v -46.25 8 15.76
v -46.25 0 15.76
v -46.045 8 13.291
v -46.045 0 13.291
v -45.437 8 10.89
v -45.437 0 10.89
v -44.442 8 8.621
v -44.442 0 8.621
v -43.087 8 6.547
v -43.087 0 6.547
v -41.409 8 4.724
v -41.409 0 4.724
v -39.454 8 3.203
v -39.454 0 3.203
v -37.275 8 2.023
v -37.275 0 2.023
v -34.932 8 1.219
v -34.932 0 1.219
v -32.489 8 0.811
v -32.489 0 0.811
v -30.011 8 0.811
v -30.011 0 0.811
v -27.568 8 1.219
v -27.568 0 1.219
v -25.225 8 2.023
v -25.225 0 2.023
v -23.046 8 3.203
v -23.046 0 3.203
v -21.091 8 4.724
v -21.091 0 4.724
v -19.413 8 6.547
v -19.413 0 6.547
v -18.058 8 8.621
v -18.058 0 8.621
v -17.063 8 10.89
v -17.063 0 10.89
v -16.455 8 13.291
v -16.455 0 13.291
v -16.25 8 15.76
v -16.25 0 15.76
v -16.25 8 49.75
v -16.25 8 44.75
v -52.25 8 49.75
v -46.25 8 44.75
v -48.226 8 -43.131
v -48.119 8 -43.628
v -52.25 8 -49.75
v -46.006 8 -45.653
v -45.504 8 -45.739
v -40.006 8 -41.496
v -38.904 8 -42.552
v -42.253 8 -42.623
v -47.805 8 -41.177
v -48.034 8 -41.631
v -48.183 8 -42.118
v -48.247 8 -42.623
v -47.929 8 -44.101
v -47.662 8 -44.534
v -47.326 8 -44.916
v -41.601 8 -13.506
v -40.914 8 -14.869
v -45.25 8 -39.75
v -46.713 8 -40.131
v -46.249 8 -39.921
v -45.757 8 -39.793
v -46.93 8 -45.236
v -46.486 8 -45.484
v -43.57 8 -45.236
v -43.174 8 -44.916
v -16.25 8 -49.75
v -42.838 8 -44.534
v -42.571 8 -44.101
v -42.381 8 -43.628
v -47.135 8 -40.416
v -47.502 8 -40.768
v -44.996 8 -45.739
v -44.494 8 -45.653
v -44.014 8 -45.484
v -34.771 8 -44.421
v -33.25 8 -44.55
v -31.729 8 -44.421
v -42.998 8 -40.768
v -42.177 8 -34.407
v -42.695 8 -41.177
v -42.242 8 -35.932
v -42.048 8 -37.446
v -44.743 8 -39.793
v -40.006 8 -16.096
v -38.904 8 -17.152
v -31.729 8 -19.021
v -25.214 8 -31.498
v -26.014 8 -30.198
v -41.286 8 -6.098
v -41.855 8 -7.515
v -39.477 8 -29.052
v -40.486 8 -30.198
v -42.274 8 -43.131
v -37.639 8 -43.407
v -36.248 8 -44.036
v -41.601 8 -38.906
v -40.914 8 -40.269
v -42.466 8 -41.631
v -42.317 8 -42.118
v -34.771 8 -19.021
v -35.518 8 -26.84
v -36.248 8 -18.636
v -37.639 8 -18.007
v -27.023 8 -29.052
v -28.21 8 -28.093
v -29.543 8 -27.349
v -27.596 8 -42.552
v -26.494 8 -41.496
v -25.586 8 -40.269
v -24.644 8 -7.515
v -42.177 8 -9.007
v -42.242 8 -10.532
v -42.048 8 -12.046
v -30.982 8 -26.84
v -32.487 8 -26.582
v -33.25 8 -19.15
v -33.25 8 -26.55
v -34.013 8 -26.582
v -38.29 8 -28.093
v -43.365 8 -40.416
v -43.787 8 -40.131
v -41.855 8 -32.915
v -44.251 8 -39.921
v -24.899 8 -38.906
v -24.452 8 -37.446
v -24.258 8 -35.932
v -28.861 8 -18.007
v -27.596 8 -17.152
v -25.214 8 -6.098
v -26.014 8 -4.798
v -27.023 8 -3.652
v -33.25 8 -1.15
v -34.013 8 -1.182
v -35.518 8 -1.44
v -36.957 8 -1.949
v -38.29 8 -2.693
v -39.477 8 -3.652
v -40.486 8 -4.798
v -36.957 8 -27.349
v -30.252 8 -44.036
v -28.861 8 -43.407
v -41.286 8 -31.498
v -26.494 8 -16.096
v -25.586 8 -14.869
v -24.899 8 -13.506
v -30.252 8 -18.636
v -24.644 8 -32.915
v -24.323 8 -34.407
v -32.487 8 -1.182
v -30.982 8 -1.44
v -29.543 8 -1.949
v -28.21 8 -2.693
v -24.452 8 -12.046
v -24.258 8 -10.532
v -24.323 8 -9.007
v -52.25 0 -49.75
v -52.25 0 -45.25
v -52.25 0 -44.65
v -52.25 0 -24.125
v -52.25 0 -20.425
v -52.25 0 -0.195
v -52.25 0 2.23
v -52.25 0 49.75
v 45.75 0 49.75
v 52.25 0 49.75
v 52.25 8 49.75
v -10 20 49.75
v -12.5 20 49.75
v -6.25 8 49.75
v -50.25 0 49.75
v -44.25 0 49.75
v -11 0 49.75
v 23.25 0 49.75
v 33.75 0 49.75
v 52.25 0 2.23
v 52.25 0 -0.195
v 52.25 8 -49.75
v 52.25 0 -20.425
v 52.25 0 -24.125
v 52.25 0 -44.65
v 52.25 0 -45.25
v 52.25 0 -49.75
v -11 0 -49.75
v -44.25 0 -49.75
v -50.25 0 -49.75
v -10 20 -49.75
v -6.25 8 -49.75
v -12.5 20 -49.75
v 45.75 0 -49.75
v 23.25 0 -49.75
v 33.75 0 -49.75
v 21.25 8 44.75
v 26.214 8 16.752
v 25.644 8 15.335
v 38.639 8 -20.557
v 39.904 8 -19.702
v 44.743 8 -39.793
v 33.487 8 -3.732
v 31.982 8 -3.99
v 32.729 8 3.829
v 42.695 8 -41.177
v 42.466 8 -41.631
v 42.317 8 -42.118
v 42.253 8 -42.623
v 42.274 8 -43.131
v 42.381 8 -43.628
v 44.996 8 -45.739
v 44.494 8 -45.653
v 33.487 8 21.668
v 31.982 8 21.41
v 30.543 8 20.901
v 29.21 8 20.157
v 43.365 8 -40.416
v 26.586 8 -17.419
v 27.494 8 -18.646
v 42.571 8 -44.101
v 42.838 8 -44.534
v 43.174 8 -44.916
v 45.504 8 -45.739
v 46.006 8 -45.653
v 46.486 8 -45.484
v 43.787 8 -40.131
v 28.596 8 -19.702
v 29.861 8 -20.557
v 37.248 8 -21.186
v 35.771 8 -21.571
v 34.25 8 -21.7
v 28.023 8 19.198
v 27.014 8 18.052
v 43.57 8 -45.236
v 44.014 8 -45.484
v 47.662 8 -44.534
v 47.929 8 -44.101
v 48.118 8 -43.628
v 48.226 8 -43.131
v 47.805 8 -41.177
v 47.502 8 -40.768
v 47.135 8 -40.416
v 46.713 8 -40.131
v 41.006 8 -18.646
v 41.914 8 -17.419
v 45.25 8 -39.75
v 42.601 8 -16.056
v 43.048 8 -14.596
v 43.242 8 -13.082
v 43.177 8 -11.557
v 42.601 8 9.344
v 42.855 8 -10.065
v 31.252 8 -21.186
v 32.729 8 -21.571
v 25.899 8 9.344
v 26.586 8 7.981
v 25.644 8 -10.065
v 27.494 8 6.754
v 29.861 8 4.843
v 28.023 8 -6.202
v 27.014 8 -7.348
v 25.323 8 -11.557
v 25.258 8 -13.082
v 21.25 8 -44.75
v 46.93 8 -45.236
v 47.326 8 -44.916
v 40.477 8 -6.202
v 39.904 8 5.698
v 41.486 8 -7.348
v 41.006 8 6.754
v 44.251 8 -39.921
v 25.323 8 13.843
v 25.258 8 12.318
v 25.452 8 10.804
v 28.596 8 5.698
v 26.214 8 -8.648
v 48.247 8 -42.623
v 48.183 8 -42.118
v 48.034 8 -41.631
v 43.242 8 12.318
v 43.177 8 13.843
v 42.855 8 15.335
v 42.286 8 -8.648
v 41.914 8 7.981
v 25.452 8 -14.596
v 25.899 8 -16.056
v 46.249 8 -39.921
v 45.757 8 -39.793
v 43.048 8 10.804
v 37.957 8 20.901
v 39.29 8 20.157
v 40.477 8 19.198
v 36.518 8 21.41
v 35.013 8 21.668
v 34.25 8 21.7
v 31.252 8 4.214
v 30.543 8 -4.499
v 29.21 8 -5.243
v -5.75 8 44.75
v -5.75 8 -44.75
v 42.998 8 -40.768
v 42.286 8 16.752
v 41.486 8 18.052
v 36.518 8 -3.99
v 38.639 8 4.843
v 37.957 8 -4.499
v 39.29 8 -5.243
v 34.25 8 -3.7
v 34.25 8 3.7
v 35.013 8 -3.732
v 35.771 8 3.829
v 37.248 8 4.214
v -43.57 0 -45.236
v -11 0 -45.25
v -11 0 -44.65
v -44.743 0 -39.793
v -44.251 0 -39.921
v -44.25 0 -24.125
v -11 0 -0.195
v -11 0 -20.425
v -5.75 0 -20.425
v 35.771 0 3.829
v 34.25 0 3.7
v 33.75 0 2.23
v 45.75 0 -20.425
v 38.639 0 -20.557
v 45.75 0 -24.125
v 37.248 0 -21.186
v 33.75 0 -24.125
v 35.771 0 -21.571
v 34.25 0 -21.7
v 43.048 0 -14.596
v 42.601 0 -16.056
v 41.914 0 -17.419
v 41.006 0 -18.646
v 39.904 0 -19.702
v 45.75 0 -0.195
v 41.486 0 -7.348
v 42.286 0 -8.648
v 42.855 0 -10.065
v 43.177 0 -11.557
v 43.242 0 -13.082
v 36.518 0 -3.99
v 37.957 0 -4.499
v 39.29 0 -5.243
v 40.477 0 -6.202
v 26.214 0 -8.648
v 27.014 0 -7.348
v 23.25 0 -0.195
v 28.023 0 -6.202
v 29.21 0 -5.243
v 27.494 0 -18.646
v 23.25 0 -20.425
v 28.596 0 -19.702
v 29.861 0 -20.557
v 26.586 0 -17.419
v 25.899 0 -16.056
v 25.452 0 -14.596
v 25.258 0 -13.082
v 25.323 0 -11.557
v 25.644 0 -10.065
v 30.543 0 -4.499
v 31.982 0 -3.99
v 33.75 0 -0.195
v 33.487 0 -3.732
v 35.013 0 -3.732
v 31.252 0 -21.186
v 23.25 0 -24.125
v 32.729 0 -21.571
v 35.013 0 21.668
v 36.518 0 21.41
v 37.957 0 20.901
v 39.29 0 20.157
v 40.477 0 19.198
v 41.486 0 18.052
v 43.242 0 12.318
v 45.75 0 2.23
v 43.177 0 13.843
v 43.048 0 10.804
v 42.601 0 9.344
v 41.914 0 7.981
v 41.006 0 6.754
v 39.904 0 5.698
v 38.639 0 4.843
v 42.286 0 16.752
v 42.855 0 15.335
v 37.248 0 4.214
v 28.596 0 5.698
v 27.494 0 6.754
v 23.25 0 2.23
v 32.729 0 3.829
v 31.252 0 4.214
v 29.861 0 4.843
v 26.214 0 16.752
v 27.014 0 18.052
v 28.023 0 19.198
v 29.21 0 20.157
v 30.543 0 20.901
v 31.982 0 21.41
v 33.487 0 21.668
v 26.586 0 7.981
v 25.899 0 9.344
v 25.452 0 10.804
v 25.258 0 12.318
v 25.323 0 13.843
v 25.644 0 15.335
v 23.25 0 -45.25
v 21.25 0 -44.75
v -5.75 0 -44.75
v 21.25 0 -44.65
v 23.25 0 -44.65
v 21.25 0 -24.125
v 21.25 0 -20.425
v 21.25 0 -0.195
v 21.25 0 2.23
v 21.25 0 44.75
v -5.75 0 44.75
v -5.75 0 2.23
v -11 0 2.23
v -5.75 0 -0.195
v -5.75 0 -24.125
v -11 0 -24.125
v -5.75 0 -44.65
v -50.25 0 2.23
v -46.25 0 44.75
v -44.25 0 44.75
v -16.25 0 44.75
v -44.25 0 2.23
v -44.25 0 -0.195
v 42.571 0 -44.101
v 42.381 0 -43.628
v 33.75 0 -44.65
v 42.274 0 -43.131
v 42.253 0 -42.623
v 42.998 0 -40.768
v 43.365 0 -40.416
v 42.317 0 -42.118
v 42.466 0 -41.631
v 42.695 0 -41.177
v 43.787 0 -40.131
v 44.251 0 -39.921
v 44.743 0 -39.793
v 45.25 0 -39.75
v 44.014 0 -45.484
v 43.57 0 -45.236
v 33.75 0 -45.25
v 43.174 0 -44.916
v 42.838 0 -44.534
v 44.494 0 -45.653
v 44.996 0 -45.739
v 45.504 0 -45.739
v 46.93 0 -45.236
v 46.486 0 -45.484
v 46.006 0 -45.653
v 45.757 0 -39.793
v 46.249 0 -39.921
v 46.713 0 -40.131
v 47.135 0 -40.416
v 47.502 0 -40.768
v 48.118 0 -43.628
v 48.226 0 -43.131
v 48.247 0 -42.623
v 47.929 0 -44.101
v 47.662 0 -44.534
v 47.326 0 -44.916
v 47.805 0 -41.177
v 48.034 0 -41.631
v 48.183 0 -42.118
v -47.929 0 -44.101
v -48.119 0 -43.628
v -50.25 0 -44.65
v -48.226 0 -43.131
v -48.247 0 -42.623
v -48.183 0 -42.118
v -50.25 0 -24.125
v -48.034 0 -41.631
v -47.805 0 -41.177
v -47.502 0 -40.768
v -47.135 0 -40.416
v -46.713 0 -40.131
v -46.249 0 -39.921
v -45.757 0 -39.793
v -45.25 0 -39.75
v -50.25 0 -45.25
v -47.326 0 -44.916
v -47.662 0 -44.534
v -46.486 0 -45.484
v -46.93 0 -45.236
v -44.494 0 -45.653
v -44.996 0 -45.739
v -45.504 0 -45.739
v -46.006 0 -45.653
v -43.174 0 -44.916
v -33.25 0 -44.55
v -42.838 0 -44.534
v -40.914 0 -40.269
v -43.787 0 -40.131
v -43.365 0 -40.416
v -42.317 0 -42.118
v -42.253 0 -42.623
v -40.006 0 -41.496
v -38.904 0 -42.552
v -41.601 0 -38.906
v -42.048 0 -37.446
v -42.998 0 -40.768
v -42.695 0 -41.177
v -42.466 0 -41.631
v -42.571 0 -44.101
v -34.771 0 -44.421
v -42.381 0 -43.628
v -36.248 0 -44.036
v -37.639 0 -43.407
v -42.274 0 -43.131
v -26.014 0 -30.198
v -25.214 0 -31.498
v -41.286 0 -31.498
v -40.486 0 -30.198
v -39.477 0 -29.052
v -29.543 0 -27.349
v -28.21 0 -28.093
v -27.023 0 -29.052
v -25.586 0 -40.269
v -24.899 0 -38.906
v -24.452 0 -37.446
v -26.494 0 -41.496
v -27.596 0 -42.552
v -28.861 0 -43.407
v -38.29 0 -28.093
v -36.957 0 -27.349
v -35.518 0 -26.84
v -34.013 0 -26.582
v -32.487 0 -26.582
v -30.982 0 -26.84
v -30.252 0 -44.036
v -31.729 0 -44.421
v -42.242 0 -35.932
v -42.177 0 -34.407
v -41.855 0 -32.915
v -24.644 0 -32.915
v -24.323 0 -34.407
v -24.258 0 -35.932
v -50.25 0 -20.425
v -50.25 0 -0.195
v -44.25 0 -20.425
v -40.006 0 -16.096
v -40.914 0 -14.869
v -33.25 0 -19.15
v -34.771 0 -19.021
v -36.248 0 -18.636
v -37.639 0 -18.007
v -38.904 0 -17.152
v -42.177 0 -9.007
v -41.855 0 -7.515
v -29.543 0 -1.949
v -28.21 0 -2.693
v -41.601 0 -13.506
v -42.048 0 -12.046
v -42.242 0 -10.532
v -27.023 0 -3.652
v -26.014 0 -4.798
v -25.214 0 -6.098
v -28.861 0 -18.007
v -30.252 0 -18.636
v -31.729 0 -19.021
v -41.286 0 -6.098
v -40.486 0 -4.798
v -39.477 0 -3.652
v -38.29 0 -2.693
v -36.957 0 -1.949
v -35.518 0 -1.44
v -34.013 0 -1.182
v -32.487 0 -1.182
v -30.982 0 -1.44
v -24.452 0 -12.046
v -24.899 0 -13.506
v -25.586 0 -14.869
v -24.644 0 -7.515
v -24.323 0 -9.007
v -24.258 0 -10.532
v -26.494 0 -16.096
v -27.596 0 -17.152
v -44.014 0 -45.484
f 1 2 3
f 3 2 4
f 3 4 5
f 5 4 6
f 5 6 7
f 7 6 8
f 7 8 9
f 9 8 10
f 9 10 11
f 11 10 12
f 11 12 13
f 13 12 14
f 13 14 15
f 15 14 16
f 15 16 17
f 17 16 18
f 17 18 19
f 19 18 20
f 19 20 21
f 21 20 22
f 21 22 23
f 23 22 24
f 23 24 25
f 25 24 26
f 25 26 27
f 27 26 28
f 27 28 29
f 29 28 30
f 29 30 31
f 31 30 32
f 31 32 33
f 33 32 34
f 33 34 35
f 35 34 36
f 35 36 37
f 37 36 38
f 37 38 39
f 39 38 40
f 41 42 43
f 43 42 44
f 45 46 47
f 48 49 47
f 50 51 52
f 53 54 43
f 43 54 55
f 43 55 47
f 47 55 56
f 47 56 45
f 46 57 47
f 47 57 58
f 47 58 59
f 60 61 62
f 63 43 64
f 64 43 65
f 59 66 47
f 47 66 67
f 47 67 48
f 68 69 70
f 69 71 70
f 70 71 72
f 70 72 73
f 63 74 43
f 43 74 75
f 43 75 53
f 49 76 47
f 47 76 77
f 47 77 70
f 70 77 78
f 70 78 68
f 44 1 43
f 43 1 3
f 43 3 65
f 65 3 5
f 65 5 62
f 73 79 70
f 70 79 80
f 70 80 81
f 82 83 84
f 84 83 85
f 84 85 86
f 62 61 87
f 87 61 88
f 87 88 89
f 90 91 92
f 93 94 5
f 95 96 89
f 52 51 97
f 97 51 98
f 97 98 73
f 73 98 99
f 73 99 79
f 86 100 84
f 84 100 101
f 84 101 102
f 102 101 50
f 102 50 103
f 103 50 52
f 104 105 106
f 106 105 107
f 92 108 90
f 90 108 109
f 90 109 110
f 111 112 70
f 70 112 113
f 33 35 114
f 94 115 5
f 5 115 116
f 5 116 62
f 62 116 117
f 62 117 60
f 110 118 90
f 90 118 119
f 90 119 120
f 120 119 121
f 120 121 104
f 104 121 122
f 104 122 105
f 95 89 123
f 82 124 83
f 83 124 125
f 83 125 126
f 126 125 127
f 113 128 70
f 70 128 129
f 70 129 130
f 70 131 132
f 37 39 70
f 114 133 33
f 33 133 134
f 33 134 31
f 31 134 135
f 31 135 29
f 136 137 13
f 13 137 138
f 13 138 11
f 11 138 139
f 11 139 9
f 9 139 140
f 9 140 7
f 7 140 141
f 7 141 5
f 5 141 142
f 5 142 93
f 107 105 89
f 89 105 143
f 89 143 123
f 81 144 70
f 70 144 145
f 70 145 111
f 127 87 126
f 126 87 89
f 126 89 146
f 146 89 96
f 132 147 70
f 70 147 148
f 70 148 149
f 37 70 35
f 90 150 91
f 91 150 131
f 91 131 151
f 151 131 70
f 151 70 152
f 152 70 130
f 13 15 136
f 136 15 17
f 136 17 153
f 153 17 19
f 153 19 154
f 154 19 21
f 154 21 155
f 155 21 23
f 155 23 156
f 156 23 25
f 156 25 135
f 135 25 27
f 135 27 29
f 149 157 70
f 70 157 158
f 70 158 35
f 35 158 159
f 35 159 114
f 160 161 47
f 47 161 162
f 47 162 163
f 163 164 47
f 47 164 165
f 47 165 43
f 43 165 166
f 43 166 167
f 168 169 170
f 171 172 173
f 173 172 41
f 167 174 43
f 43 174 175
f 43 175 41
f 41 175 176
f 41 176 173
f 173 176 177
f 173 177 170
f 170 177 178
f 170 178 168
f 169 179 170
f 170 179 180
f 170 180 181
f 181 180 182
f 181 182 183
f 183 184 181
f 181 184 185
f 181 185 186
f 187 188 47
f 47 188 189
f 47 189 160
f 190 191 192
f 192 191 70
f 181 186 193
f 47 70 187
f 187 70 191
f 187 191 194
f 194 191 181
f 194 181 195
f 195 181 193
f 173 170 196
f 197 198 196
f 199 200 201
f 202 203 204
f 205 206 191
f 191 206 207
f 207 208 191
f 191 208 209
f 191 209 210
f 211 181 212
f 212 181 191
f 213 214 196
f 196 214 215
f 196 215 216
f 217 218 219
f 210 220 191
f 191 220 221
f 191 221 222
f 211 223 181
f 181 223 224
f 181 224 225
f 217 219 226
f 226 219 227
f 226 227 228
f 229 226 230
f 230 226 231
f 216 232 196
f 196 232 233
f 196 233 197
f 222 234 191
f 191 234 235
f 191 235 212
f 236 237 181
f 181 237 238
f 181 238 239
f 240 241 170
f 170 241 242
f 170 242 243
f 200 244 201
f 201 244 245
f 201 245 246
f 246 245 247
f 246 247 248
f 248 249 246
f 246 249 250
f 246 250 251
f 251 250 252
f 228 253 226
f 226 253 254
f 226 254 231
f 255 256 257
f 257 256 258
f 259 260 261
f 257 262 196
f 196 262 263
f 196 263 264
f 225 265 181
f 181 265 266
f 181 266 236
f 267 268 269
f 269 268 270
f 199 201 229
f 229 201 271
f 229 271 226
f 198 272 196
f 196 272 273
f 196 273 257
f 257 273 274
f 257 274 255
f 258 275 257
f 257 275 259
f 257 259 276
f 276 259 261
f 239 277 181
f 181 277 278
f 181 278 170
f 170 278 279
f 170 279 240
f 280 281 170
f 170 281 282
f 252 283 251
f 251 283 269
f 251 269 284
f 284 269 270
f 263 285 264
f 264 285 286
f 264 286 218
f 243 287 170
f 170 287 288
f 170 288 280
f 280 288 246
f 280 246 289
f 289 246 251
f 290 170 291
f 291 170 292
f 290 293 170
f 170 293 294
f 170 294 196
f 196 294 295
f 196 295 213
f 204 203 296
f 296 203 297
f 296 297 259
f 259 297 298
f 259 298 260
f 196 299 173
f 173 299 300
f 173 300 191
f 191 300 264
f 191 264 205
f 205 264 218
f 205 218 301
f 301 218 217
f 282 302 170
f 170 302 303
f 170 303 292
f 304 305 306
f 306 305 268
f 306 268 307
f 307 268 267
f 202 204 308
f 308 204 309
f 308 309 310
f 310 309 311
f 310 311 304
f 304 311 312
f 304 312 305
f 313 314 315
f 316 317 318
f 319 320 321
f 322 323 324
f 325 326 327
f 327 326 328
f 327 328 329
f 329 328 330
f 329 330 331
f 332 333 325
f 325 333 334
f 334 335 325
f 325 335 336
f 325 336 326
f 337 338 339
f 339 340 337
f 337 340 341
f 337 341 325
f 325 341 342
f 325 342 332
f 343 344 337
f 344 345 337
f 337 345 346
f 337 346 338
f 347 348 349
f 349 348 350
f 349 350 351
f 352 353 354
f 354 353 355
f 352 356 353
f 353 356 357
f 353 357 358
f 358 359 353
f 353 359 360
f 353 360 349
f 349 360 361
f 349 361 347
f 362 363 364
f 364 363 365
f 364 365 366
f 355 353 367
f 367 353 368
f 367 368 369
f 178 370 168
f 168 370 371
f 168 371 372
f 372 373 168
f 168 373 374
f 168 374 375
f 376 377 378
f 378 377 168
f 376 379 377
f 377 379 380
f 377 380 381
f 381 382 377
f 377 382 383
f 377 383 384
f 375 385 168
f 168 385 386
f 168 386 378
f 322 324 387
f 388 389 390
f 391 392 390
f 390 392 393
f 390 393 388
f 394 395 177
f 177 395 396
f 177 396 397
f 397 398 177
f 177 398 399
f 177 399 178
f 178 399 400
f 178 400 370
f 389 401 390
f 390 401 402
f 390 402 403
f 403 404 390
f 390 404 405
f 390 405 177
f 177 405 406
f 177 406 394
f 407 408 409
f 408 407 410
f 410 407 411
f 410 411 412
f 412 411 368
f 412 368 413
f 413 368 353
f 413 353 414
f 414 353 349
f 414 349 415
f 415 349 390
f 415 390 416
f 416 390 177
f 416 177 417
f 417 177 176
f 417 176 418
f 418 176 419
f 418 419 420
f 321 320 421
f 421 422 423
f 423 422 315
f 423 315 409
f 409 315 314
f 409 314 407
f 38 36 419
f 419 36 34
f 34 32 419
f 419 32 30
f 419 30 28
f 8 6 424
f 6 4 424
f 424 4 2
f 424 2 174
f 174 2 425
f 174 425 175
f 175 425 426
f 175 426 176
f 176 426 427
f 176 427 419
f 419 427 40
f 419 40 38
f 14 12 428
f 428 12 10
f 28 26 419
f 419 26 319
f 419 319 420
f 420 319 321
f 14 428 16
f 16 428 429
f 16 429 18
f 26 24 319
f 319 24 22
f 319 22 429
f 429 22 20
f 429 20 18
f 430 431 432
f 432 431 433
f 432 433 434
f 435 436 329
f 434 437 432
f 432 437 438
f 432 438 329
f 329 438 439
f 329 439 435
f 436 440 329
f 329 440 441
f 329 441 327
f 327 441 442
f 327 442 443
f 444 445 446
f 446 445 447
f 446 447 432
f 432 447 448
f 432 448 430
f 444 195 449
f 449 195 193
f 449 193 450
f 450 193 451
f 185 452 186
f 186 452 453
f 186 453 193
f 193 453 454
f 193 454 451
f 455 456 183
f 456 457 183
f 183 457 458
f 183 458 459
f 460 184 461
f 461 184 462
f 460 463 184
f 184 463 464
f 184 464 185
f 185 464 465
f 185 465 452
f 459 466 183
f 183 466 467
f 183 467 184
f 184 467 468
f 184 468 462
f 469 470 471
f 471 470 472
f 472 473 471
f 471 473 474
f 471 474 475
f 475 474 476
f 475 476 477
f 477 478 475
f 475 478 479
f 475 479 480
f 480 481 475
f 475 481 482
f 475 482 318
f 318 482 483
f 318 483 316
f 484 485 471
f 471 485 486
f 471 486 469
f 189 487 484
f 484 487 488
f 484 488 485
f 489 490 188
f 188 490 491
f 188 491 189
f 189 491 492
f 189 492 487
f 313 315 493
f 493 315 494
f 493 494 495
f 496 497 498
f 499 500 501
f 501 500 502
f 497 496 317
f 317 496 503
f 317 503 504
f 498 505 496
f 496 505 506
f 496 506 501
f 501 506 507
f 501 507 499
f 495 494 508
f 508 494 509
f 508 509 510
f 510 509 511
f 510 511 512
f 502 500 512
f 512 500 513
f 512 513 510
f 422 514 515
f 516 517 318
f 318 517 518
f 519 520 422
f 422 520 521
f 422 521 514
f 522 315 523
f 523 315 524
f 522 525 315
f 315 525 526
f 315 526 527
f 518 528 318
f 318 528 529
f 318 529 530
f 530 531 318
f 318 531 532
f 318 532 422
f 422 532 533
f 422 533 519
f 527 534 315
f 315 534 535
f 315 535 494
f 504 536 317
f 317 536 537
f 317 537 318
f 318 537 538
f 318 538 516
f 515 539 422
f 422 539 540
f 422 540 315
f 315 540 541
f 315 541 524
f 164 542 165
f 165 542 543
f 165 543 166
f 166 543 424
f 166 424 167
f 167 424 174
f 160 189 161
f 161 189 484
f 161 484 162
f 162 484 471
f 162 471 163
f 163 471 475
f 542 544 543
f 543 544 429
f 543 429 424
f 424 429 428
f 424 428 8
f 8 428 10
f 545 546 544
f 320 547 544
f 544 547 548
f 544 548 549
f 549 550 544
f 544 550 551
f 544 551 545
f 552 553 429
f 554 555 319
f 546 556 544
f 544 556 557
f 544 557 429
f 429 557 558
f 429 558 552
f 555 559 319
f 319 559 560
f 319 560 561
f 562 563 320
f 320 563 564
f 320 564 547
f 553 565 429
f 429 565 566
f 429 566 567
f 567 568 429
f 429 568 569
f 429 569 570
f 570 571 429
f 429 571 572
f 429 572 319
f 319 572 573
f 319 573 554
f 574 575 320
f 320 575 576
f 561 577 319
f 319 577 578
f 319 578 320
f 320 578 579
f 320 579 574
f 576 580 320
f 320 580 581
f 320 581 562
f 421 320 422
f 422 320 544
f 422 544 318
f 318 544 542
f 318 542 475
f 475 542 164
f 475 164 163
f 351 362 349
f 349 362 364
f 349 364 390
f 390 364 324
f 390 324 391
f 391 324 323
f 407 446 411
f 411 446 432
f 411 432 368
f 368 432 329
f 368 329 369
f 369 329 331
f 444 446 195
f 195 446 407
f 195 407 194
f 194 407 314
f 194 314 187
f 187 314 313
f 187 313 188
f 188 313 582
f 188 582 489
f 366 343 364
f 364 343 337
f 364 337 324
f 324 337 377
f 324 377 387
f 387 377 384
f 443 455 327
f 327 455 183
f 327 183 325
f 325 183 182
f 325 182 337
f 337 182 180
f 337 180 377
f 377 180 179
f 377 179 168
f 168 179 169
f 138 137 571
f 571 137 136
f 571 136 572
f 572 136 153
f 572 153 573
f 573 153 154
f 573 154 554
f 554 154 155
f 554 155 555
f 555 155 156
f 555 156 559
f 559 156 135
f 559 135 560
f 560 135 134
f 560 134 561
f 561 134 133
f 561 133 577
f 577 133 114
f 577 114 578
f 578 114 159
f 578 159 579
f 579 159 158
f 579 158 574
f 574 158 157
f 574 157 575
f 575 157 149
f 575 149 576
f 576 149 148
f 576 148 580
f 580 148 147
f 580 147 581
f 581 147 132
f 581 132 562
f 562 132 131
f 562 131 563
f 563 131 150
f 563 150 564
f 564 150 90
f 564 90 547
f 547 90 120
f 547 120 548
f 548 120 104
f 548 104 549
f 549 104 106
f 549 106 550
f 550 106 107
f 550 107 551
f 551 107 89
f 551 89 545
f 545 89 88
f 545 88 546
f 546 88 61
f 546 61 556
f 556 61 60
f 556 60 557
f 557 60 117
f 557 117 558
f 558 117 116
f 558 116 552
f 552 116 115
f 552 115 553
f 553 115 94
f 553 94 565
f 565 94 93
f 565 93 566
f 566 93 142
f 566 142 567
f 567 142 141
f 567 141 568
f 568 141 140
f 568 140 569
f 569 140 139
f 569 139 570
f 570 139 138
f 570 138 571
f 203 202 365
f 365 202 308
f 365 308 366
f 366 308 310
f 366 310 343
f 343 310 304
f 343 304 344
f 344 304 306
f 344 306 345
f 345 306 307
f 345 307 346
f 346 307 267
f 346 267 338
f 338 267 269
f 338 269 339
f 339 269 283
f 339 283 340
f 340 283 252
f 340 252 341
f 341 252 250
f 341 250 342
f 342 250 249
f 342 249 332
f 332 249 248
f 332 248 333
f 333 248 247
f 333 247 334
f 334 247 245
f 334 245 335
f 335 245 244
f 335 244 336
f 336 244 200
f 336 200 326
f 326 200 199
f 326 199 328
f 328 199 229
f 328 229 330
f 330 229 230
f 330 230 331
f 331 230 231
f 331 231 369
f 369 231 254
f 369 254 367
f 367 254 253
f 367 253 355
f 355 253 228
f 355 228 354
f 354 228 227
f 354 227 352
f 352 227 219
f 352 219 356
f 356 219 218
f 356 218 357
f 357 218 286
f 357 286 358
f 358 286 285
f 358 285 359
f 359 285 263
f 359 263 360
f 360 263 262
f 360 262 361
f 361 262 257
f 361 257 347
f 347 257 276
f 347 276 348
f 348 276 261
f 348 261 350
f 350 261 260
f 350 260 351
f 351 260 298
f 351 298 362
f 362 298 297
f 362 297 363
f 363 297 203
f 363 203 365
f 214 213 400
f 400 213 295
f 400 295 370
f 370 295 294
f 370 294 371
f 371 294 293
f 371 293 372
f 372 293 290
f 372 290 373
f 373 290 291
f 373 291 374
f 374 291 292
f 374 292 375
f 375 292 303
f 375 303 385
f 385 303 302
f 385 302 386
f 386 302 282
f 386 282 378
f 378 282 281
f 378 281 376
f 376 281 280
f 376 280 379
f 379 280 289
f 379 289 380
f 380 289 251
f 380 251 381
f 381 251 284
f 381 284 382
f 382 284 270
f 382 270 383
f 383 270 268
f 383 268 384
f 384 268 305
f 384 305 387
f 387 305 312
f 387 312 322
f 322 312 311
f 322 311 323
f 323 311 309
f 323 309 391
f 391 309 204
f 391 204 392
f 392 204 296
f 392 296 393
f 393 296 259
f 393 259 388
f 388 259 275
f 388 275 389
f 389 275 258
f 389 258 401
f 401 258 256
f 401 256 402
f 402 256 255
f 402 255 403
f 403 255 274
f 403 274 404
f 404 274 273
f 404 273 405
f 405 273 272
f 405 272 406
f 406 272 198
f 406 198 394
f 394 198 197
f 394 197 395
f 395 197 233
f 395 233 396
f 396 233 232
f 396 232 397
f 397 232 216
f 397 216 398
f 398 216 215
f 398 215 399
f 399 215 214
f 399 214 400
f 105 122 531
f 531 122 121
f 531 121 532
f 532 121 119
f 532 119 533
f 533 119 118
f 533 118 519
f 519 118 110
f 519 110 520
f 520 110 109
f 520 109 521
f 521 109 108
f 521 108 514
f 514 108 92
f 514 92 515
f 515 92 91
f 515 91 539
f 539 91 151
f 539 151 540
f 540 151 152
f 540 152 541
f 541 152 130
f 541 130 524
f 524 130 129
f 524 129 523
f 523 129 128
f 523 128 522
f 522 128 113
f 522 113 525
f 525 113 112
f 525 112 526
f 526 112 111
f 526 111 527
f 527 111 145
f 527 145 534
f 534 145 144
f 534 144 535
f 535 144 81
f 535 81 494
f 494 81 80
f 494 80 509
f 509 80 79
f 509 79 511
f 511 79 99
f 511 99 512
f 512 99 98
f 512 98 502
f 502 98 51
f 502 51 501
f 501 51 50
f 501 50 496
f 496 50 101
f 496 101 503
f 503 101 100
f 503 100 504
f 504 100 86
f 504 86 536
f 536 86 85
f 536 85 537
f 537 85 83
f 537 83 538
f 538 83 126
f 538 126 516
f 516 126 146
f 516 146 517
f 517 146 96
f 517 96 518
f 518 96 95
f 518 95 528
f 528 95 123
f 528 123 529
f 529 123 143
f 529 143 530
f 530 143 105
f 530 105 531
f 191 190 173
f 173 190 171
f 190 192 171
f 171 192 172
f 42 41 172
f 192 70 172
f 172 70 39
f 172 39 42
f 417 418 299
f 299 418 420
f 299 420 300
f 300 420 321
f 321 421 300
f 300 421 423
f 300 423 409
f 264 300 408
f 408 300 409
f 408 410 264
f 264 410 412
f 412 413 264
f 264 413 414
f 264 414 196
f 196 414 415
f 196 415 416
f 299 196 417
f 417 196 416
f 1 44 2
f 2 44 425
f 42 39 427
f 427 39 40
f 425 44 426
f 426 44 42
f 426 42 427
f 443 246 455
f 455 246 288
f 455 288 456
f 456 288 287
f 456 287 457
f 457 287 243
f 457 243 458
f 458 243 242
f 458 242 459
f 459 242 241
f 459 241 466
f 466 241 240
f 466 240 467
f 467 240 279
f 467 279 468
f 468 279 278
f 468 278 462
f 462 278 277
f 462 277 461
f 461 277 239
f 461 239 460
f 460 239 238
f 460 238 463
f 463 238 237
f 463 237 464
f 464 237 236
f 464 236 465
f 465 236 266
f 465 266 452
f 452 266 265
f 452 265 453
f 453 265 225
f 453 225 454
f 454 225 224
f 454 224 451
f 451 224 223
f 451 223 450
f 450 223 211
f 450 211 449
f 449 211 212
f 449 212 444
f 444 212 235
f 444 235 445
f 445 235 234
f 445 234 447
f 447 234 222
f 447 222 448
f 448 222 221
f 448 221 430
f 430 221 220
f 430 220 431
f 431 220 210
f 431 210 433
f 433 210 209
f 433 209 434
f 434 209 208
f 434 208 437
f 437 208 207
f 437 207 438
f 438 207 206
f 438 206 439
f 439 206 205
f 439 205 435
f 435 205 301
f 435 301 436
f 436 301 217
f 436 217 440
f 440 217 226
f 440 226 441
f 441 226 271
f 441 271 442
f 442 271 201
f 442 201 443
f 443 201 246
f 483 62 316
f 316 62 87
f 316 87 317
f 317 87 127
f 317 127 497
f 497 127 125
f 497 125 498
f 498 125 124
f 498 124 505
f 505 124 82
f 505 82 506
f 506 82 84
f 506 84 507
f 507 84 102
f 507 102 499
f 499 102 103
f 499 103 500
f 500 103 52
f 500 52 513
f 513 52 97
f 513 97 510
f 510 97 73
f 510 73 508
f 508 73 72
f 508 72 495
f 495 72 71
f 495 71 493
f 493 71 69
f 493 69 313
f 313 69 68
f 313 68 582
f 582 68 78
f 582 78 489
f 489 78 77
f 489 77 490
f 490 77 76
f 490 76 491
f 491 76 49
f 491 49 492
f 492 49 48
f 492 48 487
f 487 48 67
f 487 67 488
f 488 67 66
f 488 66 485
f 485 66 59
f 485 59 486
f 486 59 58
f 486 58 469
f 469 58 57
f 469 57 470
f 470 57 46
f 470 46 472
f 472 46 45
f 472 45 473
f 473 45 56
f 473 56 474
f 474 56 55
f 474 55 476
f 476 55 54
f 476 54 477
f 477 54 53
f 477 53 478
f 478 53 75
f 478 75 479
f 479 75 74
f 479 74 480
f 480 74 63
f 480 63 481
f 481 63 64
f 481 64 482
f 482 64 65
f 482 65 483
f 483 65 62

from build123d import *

# Parameters (mm, degrees)
SKETCH1_W           = 104.5
SKETCH1_H           = 99.5
BOSS_EXTRUDE1_DEPTH = 8
CUT_EXTRUDE1_REACH  = 10
SKETCH2_R           = 9
SKETCH2_R_2         = 15
BOSS_EXTRUDE2_DEPTH = 99.5
CUT_EXTRUDE2_REACH  = 10
SKETCH4_W           = 27
SKETCH4_H           = 89.5
CUT_EXTRUDE3_REACH  = 10
SKETCH5_W           = 30
SKETCH5_H           = 28.99
CUT_EXTRUDE4_REACH  = 10
SKETCH6_R           = 3


with BuildPart() as part:
    # Sketch1 → Boss-Extrude1 (new body)
    with BuildSketch(Plane(origin=(0, 0, 0), x_dir=(1, 0, 0), z_dir=(0, 1, 0))):
        Rectangle(SKETCH1_W, SKETCH1_H)
    extrude(amount=BOSS_EXTRUDE1_DEPTH)

    # Sketch2 → Cut-Extrude1 (cut, up to next)
    with BuildSketch(Plane.XZ, mode=Mode.PRIVATE) as cut_extrude1_sk1:
        with Locations((-33.25, -10.15)):
            Circle(SKETCH2_R)
    cut_extrude1_tool1 = extrude(cut_extrude1_sk1.sketch, amount=-CUT_EXTRUDE1_REACH, mode=Mode.PRIVATE) & part.part
    add(cut_extrude1_tool1.solids().sort_by_distance((-33.25, 0, -10.15))[0], mode=Mode.SUBTRACT)
    # Sketch2 → Cut-Extrude1 (cut, up to next)
    with BuildSketch(Plane.XZ, mode=Mode.PRIVATE) as cut_extrude1_sk2:
        with Locations((-33.25, -35.55)):
            Circle(SKETCH2_R)
    cut_extrude1_tool2 = extrude(cut_extrude1_sk2.sketch, amount=-CUT_EXTRUDE1_REACH, mode=Mode.PRIVATE) & part.part
    add(cut_extrude1_tool2.solids().sort_by_distance((-33.25, 0, -35.55))[0], mode=Mode.SUBTRACT)
    # Sketch2 → Cut-Extrude1 (cut, up to next)
    with BuildSketch(Plane.XZ, mode=Mode.PRIVATE) as cut_extrude1_sk3:
        with Locations((34.25, 12.7)):
            Circle(SKETCH2_R)
    cut_extrude1_tool3 = extrude(cut_extrude1_sk3.sketch, amount=-CUT_EXTRUDE1_REACH, mode=Mode.PRIVATE) & part.part
    add(cut_extrude1_tool3.solids().sort_by_distance((34.25, 0, 12.7))[0], mode=Mode.SUBTRACT)
    # Sketch2 → Cut-Extrude1 (cut, up to next)
    with BuildSketch(Plane.XZ, mode=Mode.PRIVATE) as cut_extrude1_sk4:
        with Locations((34.25, -12.7)):
            Circle(SKETCH2_R)
    cut_extrude1_tool4 = extrude(cut_extrude1_sk4.sketch, amount=-CUT_EXTRUDE1_REACH, mode=Mode.PRIVATE) & part.part
    add(cut_extrude1_tool4.solids().sort_by_distance((34.25, 0, -12.7))[0], mode=Mode.SUBTRACT)
    # Sketch2 → Cut-Extrude1 (cut, up to next)
    with BuildSketch(Plane.XZ, mode=Mode.PRIVATE) as cut_extrude1_sk5:
        with Locations((-31.25, 15.76)):
            Circle(SKETCH2_R_2)
    cut_extrude1_tool5 = extrude(cut_extrude1_sk5.sketch, amount=-CUT_EXTRUDE1_REACH, mode=Mode.PRIVATE) & part.part
    add(cut_extrude1_tool5.solids().sort_by_distance((-31.25, 0, 15.76))[0], mode=Mode.SUBTRACT)

    # Sketch3 → Boss-Extrude2 (add)
    with BuildSketch(Plane(origin=(0, 0, -49.75), x_dir=(-1, 0, 0), z_dir=(0, 0, -1))):
        Polygon((6.25, 8), (10, 20), (12.5, 20), (16.25, 8), align=None)
    extrude(amount=-BOSS_EXTRUDE2_DEPTH)

    # Sketch4 → Cut-Extrude2 (cut, up to next)
    with BuildSketch(Plane(origin=(0, 8, 0), x_dir=(1, 0, 0), z_dir=(0, 1, 0)), mode=Mode.PRIVATE) as cut_extrude2_sk1:
        with Locations((7.75, 0)):
            Rectangle(SKETCH4_W, SKETCH4_H)
    cut_extrude2_tool1 = extrude(cut_extrude2_sk1.sketch, amount=-CUT_EXTRUDE2_REACH, mode=Mode.PRIVATE) & part.part
    add(cut_extrude2_tool1.solids().sort_by_distance((7.75, 8, 0))[0], mode=Mode.SUBTRACT)

    # Sketch5 → Cut-Extrude3 (cut, up to next)
    with BuildSketch(Plane(origin=(0, 8, 0), x_dir=(1, 0, 0), z_dir=(0, 1, 0)), mode=Mode.PRIVATE) as cut_extrude3_sk1:
        with Locations((-31.25, -30.255)):
            Rectangle(SKETCH5_W, SKETCH5_H)
    cut_extrude3_tool1 = extrude(cut_extrude3_sk1.sketch, amount=-CUT_EXTRUDE3_REACH, mode=Mode.PRIVATE) & part.part
    add(cut_extrude3_tool1.solids().sort_by_distance((-31.25, 8, 30.255))[0], mode=Mode.SUBTRACT)

    # Sketch6 → Cut-Extrude4 (cut, up to next)
    with BuildSketch(Plane(origin=(0, 8, 0), x_dir=(1, 0, 0), z_dir=(0, 1, 0)), mode=Mode.PRIVATE) as cut_extrude4_sk1:
        with Locations((-45.25, 42.75)):
            Circle(SKETCH6_R)
    cut_extrude4_tool1 = extrude(cut_extrude4_sk1.sketch, amount=-CUT_EXTRUDE4_REACH, mode=Mode.PRIVATE) & part.part
    add(cut_extrude4_tool1.solids().sort_by_distance((-45.25, 8, -42.75))[0], mode=Mode.SUBTRACT)
    # Sketch6 → Cut-Extrude4 (cut, up to next)
    with BuildSketch(Plane(origin=(0, 8, 0), x_dir=(1, 0, 0), z_dir=(0, 1, 0)), mode=Mode.PRIVATE) as cut_extrude4_sk2:
        with Locations((45.25, 42.75)):
            Circle(SKETCH6_R)
    cut_extrude4_tool2 = extrude(cut_extrude4_sk2.sketch, amount=-CUT_EXTRUDE4_REACH, mode=Mode.PRIVATE) & part.part
    add(cut_extrude4_tool2.solids().sort_by_distance((45.25, 8, -42.75))[0], mode=Mode.SUBTRACT)


solid = part.part
